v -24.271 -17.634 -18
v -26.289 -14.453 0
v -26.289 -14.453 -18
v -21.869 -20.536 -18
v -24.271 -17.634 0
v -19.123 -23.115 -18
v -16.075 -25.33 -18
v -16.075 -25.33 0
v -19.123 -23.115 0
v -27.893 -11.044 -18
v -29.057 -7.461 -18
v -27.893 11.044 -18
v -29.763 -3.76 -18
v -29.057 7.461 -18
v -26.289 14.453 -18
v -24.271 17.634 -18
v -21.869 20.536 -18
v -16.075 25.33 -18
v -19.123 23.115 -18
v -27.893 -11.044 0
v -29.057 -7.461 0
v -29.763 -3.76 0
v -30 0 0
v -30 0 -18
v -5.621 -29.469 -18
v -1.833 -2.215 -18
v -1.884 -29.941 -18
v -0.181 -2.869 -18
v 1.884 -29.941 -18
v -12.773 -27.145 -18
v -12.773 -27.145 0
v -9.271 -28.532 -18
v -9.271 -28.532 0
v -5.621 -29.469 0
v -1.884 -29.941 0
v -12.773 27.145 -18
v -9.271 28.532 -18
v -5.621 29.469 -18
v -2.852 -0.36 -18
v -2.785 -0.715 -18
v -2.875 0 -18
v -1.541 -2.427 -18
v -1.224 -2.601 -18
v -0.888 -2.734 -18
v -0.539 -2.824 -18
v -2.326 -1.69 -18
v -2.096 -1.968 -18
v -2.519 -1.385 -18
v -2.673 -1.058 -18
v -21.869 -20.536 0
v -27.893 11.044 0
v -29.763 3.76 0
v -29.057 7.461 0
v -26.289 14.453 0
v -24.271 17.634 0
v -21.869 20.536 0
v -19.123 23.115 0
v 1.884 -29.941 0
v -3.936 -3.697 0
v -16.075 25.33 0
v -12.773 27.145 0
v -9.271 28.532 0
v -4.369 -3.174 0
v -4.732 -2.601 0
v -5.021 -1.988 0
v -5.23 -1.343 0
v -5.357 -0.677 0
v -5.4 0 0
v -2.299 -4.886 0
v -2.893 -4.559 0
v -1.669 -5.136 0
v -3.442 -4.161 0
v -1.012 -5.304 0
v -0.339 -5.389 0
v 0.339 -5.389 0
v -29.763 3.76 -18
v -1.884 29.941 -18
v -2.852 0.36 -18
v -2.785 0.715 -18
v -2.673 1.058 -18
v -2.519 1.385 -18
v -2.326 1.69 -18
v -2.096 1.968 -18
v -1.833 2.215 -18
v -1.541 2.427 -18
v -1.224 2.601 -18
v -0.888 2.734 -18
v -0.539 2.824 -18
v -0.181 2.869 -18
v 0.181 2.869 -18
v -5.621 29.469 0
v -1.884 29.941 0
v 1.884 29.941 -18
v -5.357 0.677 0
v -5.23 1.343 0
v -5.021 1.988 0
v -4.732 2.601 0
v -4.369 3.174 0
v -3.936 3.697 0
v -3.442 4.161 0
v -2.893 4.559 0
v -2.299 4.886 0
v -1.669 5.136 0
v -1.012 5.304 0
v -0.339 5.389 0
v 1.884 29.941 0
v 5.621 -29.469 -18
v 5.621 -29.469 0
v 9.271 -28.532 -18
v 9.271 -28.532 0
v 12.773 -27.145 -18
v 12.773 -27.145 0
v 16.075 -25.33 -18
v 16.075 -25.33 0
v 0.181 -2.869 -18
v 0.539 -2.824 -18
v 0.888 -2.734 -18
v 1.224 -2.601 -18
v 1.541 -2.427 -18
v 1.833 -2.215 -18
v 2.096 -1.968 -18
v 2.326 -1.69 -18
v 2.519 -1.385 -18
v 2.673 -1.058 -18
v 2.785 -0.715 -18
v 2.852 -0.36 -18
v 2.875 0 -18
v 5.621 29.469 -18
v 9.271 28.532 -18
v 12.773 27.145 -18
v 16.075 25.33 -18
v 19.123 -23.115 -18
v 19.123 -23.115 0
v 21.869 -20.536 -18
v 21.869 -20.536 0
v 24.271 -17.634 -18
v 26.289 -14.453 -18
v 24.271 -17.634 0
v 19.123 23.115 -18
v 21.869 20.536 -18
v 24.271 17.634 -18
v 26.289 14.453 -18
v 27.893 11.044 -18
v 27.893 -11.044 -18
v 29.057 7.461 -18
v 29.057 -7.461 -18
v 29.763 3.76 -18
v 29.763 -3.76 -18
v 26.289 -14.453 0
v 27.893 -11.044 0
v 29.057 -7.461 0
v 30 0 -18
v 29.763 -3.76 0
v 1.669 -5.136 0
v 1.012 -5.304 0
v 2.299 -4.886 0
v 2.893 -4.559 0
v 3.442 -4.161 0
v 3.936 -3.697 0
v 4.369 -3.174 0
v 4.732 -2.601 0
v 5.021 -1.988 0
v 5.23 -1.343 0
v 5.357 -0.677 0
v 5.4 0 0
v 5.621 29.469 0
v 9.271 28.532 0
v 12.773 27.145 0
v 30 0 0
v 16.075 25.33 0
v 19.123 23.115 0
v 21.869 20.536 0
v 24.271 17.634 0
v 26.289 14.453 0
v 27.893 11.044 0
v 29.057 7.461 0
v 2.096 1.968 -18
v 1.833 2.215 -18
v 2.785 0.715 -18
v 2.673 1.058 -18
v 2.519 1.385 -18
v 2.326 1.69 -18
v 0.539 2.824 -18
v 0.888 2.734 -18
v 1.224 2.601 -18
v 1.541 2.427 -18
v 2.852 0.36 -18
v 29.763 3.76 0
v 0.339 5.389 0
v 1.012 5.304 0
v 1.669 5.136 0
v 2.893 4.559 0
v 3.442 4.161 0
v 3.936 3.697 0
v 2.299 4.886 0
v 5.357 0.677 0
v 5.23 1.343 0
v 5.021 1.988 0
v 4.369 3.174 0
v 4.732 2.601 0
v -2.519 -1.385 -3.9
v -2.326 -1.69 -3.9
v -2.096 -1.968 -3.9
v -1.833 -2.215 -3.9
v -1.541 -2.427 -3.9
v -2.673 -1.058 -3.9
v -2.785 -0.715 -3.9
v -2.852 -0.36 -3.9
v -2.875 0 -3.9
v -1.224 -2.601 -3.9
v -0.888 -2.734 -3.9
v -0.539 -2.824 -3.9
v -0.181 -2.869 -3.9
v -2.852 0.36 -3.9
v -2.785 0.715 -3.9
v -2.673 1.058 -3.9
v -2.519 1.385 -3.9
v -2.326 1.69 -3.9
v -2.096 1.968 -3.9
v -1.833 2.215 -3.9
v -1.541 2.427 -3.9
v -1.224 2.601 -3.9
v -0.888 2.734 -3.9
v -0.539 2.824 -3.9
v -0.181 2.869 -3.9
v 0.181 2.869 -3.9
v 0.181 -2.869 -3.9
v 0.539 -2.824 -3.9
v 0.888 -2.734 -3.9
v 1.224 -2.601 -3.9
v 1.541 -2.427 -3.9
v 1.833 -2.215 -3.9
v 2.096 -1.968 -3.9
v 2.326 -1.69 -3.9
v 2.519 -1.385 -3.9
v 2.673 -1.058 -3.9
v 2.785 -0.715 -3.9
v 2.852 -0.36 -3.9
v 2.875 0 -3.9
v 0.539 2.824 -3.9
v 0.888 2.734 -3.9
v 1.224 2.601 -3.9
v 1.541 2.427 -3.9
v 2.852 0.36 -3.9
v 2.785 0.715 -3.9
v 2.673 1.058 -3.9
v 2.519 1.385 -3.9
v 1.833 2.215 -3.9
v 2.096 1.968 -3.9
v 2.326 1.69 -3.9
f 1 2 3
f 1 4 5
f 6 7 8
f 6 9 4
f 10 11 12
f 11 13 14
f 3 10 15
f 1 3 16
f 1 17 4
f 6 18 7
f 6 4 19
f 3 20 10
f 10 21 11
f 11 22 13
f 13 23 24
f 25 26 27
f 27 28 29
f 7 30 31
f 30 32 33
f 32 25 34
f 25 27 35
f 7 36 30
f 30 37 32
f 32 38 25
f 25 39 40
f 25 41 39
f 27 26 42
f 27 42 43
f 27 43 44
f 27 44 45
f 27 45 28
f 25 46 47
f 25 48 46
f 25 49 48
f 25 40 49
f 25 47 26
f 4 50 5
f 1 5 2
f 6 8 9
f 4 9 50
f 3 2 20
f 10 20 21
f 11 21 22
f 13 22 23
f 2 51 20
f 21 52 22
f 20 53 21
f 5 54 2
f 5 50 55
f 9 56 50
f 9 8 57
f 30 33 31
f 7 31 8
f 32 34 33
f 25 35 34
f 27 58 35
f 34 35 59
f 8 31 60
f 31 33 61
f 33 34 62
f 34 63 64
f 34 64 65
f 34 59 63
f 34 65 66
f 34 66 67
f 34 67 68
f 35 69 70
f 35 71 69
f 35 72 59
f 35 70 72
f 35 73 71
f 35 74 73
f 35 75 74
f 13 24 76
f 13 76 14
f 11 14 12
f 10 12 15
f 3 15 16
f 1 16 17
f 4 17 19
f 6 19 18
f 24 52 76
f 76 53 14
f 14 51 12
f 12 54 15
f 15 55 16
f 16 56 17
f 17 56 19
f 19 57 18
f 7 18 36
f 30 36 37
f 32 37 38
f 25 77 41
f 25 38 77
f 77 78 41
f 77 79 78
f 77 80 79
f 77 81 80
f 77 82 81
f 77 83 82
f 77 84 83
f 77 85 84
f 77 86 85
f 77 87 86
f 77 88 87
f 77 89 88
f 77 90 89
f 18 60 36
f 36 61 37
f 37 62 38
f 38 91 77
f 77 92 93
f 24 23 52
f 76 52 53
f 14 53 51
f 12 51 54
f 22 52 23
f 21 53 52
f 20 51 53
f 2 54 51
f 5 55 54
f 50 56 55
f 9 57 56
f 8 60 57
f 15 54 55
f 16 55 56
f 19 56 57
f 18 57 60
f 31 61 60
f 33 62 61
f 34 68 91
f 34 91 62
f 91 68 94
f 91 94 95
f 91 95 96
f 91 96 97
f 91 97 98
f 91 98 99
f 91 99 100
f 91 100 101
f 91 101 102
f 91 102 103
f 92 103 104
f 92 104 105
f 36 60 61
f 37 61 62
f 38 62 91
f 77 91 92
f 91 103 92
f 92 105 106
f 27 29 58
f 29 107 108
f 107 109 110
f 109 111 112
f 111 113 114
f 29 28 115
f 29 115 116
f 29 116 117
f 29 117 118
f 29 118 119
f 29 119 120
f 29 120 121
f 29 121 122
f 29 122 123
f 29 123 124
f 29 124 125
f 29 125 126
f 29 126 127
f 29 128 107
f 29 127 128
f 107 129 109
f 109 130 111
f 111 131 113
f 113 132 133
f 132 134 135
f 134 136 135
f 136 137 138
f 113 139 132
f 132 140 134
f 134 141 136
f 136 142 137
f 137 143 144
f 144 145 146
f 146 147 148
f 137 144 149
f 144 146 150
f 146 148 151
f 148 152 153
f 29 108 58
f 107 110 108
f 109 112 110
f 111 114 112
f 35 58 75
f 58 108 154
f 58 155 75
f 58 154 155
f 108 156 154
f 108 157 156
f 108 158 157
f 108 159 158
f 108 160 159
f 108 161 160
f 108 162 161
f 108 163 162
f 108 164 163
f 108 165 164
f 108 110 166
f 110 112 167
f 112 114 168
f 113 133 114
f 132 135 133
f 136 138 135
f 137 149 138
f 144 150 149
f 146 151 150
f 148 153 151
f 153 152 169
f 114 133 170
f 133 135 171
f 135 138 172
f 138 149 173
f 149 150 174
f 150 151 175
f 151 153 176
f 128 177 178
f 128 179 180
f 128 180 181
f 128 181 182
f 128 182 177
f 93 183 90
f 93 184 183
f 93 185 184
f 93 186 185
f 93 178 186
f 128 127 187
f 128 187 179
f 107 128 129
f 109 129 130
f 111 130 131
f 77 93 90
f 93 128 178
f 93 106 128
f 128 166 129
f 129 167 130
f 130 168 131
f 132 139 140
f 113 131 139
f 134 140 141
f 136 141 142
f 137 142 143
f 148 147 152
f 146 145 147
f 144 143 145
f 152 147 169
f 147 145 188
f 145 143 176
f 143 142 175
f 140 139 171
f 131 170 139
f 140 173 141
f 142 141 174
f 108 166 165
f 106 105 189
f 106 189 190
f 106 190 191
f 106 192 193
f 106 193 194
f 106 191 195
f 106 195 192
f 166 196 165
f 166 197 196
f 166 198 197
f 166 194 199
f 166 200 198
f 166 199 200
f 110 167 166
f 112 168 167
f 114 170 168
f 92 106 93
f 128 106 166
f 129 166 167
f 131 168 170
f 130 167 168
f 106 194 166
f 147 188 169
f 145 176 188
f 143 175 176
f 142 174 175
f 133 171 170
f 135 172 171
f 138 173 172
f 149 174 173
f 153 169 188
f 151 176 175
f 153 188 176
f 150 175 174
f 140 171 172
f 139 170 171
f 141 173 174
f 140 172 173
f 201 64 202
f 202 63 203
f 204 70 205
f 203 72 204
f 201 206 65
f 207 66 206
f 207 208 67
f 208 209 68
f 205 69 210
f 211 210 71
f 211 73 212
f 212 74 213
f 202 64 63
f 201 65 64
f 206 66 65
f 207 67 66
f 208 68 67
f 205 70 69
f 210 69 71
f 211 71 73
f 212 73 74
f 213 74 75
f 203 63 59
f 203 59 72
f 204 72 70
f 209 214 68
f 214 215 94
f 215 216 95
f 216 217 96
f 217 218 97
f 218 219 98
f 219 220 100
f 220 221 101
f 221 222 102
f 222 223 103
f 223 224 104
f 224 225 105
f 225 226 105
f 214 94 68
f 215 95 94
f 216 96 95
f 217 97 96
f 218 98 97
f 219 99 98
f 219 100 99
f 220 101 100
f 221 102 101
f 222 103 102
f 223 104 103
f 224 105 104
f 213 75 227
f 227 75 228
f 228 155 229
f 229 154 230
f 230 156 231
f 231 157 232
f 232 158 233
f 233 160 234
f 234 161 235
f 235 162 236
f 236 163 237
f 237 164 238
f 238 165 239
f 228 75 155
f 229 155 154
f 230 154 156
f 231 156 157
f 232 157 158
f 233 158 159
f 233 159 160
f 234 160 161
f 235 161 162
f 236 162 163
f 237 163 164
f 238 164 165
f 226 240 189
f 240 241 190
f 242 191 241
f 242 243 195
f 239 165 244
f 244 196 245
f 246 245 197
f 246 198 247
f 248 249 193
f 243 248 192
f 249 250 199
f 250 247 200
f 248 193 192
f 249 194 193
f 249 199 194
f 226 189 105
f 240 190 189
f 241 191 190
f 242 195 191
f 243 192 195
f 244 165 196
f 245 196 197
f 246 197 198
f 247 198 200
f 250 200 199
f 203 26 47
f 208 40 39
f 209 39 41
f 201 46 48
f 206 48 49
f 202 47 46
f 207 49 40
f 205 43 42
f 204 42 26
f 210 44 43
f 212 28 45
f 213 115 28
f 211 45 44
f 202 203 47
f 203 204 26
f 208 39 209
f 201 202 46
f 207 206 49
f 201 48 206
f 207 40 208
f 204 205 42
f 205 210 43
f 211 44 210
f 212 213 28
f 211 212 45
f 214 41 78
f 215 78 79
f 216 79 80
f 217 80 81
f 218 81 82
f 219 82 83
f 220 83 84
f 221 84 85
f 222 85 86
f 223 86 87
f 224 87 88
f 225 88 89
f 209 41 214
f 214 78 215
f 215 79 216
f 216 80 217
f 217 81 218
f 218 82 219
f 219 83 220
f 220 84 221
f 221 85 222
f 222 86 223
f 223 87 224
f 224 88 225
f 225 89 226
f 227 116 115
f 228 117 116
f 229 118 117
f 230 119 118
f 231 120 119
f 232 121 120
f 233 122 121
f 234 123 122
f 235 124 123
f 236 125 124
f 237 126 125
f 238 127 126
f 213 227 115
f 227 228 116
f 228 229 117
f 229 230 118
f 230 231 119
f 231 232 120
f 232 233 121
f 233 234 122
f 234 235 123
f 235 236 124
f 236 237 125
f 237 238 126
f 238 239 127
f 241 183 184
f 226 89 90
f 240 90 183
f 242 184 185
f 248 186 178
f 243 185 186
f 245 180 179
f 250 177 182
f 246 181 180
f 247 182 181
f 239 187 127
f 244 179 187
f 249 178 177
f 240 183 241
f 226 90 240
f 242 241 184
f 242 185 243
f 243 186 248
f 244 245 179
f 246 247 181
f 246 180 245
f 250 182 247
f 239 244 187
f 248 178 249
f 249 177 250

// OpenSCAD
$fn = 50;

difference() {
	union() {
		translate(v = [0, 0, -18.0]) {
			cylinder(h = 18, r = 30.0);
		}
		#translate(v = [0, 0, -21.0]) {
			cylinder(h = 21, r = 2.875);
		}
	}
	union() {
		translate(v = [0, 0, 0]) {
			rotate(a = [0, 0, 0]) {
				difference() {
					union() {
						translate(v = [0, 0, -21.0]) {
							cylinder(h = 21, r = 2.6);
						}
						translate(v = [0, 0, -3.9]) {
							cylinder(h = 3.9, r1 = 2.875, r2 = 5.4);
						}
						translate(v = [0, 0, -21.0]) {
							cylinder(h = 21, r = 2.875);
						}
						translate(v = [0, 0, -21.0]) {
							cylinder(h = 21, r = 2.6);
						}
					}
					union();
				}
			}
		}
	}
}
